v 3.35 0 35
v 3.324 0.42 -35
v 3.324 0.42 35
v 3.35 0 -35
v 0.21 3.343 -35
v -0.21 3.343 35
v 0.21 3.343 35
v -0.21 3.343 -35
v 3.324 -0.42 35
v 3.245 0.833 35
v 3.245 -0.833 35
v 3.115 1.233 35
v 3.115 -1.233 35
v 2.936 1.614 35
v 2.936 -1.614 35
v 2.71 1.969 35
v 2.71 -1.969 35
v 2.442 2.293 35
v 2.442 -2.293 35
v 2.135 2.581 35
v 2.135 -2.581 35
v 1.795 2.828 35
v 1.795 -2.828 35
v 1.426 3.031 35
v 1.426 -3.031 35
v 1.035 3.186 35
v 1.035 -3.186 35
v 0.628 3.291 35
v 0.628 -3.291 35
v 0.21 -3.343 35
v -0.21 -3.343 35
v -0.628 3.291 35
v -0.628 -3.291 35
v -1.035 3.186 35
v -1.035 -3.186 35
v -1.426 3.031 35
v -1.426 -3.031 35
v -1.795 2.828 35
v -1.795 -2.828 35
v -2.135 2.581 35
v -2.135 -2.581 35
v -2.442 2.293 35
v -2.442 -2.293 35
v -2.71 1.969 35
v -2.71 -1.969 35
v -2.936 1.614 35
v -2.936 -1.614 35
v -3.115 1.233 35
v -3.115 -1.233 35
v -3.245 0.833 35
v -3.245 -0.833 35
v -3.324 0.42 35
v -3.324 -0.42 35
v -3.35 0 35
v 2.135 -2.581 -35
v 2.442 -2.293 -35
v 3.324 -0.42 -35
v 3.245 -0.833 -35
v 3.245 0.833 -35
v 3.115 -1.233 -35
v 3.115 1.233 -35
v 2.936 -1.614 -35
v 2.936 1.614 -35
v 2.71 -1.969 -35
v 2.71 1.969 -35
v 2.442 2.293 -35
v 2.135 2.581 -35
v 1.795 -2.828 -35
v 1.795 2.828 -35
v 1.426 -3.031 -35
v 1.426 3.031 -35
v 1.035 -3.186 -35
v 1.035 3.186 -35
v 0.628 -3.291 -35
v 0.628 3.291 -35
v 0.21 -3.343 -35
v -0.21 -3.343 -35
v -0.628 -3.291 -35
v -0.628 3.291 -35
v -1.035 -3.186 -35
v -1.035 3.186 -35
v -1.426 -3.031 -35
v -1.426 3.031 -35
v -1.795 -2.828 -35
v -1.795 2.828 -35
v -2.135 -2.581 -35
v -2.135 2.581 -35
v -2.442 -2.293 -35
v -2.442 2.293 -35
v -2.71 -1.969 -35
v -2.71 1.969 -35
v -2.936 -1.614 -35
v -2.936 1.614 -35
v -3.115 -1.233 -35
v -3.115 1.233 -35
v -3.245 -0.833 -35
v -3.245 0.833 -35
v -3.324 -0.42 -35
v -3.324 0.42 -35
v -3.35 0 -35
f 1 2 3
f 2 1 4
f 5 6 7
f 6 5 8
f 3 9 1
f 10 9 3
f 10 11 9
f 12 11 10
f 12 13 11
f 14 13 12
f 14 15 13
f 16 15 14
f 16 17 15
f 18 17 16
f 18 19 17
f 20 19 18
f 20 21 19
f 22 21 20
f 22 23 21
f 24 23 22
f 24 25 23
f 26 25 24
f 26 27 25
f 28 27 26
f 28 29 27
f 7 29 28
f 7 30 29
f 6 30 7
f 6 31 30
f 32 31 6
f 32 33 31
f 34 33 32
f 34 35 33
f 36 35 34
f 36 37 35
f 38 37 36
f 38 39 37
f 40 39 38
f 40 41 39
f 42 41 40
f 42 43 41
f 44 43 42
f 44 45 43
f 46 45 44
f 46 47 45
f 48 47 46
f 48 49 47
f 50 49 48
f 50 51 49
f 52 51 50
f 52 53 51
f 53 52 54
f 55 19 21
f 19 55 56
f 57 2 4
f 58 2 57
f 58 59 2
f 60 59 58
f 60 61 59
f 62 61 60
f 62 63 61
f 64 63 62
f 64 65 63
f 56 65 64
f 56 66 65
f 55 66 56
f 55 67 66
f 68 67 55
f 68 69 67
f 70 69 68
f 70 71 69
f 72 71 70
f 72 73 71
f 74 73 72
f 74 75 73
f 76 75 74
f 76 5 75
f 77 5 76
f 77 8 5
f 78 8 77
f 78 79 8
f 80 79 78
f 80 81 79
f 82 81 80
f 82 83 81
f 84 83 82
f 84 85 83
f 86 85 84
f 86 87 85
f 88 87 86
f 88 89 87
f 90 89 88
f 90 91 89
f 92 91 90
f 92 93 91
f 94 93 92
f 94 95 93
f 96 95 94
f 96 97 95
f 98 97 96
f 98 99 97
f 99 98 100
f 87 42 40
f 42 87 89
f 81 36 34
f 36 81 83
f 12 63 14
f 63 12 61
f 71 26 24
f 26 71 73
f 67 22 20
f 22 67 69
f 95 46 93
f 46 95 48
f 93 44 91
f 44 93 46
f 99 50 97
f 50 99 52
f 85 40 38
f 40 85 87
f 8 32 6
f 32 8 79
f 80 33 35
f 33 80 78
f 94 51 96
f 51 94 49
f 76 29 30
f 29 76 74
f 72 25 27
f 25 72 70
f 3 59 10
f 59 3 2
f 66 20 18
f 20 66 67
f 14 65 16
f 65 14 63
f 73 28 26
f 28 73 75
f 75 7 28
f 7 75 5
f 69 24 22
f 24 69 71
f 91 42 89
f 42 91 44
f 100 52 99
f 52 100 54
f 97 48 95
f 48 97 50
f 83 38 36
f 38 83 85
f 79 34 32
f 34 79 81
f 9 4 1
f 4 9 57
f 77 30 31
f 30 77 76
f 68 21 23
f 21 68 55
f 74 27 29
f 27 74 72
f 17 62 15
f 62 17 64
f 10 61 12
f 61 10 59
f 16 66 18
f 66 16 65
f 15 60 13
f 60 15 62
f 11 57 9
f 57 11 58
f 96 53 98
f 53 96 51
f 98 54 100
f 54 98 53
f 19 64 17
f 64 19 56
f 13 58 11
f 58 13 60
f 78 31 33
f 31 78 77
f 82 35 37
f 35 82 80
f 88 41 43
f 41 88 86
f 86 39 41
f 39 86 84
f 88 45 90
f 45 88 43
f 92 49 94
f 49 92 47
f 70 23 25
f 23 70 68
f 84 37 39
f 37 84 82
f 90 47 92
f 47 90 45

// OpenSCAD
$fn = 50;


difference() {
	union() {
		translate(v = [0, 0, -35.0000000000]) {
			cylinder(h = 70, r = 3.3500000000);
		}
	}
	union() {
		translate(v = [0, 0, -100.0000000000]) {
			cylinder(h = 200, r = 0);
		}
	}
}
